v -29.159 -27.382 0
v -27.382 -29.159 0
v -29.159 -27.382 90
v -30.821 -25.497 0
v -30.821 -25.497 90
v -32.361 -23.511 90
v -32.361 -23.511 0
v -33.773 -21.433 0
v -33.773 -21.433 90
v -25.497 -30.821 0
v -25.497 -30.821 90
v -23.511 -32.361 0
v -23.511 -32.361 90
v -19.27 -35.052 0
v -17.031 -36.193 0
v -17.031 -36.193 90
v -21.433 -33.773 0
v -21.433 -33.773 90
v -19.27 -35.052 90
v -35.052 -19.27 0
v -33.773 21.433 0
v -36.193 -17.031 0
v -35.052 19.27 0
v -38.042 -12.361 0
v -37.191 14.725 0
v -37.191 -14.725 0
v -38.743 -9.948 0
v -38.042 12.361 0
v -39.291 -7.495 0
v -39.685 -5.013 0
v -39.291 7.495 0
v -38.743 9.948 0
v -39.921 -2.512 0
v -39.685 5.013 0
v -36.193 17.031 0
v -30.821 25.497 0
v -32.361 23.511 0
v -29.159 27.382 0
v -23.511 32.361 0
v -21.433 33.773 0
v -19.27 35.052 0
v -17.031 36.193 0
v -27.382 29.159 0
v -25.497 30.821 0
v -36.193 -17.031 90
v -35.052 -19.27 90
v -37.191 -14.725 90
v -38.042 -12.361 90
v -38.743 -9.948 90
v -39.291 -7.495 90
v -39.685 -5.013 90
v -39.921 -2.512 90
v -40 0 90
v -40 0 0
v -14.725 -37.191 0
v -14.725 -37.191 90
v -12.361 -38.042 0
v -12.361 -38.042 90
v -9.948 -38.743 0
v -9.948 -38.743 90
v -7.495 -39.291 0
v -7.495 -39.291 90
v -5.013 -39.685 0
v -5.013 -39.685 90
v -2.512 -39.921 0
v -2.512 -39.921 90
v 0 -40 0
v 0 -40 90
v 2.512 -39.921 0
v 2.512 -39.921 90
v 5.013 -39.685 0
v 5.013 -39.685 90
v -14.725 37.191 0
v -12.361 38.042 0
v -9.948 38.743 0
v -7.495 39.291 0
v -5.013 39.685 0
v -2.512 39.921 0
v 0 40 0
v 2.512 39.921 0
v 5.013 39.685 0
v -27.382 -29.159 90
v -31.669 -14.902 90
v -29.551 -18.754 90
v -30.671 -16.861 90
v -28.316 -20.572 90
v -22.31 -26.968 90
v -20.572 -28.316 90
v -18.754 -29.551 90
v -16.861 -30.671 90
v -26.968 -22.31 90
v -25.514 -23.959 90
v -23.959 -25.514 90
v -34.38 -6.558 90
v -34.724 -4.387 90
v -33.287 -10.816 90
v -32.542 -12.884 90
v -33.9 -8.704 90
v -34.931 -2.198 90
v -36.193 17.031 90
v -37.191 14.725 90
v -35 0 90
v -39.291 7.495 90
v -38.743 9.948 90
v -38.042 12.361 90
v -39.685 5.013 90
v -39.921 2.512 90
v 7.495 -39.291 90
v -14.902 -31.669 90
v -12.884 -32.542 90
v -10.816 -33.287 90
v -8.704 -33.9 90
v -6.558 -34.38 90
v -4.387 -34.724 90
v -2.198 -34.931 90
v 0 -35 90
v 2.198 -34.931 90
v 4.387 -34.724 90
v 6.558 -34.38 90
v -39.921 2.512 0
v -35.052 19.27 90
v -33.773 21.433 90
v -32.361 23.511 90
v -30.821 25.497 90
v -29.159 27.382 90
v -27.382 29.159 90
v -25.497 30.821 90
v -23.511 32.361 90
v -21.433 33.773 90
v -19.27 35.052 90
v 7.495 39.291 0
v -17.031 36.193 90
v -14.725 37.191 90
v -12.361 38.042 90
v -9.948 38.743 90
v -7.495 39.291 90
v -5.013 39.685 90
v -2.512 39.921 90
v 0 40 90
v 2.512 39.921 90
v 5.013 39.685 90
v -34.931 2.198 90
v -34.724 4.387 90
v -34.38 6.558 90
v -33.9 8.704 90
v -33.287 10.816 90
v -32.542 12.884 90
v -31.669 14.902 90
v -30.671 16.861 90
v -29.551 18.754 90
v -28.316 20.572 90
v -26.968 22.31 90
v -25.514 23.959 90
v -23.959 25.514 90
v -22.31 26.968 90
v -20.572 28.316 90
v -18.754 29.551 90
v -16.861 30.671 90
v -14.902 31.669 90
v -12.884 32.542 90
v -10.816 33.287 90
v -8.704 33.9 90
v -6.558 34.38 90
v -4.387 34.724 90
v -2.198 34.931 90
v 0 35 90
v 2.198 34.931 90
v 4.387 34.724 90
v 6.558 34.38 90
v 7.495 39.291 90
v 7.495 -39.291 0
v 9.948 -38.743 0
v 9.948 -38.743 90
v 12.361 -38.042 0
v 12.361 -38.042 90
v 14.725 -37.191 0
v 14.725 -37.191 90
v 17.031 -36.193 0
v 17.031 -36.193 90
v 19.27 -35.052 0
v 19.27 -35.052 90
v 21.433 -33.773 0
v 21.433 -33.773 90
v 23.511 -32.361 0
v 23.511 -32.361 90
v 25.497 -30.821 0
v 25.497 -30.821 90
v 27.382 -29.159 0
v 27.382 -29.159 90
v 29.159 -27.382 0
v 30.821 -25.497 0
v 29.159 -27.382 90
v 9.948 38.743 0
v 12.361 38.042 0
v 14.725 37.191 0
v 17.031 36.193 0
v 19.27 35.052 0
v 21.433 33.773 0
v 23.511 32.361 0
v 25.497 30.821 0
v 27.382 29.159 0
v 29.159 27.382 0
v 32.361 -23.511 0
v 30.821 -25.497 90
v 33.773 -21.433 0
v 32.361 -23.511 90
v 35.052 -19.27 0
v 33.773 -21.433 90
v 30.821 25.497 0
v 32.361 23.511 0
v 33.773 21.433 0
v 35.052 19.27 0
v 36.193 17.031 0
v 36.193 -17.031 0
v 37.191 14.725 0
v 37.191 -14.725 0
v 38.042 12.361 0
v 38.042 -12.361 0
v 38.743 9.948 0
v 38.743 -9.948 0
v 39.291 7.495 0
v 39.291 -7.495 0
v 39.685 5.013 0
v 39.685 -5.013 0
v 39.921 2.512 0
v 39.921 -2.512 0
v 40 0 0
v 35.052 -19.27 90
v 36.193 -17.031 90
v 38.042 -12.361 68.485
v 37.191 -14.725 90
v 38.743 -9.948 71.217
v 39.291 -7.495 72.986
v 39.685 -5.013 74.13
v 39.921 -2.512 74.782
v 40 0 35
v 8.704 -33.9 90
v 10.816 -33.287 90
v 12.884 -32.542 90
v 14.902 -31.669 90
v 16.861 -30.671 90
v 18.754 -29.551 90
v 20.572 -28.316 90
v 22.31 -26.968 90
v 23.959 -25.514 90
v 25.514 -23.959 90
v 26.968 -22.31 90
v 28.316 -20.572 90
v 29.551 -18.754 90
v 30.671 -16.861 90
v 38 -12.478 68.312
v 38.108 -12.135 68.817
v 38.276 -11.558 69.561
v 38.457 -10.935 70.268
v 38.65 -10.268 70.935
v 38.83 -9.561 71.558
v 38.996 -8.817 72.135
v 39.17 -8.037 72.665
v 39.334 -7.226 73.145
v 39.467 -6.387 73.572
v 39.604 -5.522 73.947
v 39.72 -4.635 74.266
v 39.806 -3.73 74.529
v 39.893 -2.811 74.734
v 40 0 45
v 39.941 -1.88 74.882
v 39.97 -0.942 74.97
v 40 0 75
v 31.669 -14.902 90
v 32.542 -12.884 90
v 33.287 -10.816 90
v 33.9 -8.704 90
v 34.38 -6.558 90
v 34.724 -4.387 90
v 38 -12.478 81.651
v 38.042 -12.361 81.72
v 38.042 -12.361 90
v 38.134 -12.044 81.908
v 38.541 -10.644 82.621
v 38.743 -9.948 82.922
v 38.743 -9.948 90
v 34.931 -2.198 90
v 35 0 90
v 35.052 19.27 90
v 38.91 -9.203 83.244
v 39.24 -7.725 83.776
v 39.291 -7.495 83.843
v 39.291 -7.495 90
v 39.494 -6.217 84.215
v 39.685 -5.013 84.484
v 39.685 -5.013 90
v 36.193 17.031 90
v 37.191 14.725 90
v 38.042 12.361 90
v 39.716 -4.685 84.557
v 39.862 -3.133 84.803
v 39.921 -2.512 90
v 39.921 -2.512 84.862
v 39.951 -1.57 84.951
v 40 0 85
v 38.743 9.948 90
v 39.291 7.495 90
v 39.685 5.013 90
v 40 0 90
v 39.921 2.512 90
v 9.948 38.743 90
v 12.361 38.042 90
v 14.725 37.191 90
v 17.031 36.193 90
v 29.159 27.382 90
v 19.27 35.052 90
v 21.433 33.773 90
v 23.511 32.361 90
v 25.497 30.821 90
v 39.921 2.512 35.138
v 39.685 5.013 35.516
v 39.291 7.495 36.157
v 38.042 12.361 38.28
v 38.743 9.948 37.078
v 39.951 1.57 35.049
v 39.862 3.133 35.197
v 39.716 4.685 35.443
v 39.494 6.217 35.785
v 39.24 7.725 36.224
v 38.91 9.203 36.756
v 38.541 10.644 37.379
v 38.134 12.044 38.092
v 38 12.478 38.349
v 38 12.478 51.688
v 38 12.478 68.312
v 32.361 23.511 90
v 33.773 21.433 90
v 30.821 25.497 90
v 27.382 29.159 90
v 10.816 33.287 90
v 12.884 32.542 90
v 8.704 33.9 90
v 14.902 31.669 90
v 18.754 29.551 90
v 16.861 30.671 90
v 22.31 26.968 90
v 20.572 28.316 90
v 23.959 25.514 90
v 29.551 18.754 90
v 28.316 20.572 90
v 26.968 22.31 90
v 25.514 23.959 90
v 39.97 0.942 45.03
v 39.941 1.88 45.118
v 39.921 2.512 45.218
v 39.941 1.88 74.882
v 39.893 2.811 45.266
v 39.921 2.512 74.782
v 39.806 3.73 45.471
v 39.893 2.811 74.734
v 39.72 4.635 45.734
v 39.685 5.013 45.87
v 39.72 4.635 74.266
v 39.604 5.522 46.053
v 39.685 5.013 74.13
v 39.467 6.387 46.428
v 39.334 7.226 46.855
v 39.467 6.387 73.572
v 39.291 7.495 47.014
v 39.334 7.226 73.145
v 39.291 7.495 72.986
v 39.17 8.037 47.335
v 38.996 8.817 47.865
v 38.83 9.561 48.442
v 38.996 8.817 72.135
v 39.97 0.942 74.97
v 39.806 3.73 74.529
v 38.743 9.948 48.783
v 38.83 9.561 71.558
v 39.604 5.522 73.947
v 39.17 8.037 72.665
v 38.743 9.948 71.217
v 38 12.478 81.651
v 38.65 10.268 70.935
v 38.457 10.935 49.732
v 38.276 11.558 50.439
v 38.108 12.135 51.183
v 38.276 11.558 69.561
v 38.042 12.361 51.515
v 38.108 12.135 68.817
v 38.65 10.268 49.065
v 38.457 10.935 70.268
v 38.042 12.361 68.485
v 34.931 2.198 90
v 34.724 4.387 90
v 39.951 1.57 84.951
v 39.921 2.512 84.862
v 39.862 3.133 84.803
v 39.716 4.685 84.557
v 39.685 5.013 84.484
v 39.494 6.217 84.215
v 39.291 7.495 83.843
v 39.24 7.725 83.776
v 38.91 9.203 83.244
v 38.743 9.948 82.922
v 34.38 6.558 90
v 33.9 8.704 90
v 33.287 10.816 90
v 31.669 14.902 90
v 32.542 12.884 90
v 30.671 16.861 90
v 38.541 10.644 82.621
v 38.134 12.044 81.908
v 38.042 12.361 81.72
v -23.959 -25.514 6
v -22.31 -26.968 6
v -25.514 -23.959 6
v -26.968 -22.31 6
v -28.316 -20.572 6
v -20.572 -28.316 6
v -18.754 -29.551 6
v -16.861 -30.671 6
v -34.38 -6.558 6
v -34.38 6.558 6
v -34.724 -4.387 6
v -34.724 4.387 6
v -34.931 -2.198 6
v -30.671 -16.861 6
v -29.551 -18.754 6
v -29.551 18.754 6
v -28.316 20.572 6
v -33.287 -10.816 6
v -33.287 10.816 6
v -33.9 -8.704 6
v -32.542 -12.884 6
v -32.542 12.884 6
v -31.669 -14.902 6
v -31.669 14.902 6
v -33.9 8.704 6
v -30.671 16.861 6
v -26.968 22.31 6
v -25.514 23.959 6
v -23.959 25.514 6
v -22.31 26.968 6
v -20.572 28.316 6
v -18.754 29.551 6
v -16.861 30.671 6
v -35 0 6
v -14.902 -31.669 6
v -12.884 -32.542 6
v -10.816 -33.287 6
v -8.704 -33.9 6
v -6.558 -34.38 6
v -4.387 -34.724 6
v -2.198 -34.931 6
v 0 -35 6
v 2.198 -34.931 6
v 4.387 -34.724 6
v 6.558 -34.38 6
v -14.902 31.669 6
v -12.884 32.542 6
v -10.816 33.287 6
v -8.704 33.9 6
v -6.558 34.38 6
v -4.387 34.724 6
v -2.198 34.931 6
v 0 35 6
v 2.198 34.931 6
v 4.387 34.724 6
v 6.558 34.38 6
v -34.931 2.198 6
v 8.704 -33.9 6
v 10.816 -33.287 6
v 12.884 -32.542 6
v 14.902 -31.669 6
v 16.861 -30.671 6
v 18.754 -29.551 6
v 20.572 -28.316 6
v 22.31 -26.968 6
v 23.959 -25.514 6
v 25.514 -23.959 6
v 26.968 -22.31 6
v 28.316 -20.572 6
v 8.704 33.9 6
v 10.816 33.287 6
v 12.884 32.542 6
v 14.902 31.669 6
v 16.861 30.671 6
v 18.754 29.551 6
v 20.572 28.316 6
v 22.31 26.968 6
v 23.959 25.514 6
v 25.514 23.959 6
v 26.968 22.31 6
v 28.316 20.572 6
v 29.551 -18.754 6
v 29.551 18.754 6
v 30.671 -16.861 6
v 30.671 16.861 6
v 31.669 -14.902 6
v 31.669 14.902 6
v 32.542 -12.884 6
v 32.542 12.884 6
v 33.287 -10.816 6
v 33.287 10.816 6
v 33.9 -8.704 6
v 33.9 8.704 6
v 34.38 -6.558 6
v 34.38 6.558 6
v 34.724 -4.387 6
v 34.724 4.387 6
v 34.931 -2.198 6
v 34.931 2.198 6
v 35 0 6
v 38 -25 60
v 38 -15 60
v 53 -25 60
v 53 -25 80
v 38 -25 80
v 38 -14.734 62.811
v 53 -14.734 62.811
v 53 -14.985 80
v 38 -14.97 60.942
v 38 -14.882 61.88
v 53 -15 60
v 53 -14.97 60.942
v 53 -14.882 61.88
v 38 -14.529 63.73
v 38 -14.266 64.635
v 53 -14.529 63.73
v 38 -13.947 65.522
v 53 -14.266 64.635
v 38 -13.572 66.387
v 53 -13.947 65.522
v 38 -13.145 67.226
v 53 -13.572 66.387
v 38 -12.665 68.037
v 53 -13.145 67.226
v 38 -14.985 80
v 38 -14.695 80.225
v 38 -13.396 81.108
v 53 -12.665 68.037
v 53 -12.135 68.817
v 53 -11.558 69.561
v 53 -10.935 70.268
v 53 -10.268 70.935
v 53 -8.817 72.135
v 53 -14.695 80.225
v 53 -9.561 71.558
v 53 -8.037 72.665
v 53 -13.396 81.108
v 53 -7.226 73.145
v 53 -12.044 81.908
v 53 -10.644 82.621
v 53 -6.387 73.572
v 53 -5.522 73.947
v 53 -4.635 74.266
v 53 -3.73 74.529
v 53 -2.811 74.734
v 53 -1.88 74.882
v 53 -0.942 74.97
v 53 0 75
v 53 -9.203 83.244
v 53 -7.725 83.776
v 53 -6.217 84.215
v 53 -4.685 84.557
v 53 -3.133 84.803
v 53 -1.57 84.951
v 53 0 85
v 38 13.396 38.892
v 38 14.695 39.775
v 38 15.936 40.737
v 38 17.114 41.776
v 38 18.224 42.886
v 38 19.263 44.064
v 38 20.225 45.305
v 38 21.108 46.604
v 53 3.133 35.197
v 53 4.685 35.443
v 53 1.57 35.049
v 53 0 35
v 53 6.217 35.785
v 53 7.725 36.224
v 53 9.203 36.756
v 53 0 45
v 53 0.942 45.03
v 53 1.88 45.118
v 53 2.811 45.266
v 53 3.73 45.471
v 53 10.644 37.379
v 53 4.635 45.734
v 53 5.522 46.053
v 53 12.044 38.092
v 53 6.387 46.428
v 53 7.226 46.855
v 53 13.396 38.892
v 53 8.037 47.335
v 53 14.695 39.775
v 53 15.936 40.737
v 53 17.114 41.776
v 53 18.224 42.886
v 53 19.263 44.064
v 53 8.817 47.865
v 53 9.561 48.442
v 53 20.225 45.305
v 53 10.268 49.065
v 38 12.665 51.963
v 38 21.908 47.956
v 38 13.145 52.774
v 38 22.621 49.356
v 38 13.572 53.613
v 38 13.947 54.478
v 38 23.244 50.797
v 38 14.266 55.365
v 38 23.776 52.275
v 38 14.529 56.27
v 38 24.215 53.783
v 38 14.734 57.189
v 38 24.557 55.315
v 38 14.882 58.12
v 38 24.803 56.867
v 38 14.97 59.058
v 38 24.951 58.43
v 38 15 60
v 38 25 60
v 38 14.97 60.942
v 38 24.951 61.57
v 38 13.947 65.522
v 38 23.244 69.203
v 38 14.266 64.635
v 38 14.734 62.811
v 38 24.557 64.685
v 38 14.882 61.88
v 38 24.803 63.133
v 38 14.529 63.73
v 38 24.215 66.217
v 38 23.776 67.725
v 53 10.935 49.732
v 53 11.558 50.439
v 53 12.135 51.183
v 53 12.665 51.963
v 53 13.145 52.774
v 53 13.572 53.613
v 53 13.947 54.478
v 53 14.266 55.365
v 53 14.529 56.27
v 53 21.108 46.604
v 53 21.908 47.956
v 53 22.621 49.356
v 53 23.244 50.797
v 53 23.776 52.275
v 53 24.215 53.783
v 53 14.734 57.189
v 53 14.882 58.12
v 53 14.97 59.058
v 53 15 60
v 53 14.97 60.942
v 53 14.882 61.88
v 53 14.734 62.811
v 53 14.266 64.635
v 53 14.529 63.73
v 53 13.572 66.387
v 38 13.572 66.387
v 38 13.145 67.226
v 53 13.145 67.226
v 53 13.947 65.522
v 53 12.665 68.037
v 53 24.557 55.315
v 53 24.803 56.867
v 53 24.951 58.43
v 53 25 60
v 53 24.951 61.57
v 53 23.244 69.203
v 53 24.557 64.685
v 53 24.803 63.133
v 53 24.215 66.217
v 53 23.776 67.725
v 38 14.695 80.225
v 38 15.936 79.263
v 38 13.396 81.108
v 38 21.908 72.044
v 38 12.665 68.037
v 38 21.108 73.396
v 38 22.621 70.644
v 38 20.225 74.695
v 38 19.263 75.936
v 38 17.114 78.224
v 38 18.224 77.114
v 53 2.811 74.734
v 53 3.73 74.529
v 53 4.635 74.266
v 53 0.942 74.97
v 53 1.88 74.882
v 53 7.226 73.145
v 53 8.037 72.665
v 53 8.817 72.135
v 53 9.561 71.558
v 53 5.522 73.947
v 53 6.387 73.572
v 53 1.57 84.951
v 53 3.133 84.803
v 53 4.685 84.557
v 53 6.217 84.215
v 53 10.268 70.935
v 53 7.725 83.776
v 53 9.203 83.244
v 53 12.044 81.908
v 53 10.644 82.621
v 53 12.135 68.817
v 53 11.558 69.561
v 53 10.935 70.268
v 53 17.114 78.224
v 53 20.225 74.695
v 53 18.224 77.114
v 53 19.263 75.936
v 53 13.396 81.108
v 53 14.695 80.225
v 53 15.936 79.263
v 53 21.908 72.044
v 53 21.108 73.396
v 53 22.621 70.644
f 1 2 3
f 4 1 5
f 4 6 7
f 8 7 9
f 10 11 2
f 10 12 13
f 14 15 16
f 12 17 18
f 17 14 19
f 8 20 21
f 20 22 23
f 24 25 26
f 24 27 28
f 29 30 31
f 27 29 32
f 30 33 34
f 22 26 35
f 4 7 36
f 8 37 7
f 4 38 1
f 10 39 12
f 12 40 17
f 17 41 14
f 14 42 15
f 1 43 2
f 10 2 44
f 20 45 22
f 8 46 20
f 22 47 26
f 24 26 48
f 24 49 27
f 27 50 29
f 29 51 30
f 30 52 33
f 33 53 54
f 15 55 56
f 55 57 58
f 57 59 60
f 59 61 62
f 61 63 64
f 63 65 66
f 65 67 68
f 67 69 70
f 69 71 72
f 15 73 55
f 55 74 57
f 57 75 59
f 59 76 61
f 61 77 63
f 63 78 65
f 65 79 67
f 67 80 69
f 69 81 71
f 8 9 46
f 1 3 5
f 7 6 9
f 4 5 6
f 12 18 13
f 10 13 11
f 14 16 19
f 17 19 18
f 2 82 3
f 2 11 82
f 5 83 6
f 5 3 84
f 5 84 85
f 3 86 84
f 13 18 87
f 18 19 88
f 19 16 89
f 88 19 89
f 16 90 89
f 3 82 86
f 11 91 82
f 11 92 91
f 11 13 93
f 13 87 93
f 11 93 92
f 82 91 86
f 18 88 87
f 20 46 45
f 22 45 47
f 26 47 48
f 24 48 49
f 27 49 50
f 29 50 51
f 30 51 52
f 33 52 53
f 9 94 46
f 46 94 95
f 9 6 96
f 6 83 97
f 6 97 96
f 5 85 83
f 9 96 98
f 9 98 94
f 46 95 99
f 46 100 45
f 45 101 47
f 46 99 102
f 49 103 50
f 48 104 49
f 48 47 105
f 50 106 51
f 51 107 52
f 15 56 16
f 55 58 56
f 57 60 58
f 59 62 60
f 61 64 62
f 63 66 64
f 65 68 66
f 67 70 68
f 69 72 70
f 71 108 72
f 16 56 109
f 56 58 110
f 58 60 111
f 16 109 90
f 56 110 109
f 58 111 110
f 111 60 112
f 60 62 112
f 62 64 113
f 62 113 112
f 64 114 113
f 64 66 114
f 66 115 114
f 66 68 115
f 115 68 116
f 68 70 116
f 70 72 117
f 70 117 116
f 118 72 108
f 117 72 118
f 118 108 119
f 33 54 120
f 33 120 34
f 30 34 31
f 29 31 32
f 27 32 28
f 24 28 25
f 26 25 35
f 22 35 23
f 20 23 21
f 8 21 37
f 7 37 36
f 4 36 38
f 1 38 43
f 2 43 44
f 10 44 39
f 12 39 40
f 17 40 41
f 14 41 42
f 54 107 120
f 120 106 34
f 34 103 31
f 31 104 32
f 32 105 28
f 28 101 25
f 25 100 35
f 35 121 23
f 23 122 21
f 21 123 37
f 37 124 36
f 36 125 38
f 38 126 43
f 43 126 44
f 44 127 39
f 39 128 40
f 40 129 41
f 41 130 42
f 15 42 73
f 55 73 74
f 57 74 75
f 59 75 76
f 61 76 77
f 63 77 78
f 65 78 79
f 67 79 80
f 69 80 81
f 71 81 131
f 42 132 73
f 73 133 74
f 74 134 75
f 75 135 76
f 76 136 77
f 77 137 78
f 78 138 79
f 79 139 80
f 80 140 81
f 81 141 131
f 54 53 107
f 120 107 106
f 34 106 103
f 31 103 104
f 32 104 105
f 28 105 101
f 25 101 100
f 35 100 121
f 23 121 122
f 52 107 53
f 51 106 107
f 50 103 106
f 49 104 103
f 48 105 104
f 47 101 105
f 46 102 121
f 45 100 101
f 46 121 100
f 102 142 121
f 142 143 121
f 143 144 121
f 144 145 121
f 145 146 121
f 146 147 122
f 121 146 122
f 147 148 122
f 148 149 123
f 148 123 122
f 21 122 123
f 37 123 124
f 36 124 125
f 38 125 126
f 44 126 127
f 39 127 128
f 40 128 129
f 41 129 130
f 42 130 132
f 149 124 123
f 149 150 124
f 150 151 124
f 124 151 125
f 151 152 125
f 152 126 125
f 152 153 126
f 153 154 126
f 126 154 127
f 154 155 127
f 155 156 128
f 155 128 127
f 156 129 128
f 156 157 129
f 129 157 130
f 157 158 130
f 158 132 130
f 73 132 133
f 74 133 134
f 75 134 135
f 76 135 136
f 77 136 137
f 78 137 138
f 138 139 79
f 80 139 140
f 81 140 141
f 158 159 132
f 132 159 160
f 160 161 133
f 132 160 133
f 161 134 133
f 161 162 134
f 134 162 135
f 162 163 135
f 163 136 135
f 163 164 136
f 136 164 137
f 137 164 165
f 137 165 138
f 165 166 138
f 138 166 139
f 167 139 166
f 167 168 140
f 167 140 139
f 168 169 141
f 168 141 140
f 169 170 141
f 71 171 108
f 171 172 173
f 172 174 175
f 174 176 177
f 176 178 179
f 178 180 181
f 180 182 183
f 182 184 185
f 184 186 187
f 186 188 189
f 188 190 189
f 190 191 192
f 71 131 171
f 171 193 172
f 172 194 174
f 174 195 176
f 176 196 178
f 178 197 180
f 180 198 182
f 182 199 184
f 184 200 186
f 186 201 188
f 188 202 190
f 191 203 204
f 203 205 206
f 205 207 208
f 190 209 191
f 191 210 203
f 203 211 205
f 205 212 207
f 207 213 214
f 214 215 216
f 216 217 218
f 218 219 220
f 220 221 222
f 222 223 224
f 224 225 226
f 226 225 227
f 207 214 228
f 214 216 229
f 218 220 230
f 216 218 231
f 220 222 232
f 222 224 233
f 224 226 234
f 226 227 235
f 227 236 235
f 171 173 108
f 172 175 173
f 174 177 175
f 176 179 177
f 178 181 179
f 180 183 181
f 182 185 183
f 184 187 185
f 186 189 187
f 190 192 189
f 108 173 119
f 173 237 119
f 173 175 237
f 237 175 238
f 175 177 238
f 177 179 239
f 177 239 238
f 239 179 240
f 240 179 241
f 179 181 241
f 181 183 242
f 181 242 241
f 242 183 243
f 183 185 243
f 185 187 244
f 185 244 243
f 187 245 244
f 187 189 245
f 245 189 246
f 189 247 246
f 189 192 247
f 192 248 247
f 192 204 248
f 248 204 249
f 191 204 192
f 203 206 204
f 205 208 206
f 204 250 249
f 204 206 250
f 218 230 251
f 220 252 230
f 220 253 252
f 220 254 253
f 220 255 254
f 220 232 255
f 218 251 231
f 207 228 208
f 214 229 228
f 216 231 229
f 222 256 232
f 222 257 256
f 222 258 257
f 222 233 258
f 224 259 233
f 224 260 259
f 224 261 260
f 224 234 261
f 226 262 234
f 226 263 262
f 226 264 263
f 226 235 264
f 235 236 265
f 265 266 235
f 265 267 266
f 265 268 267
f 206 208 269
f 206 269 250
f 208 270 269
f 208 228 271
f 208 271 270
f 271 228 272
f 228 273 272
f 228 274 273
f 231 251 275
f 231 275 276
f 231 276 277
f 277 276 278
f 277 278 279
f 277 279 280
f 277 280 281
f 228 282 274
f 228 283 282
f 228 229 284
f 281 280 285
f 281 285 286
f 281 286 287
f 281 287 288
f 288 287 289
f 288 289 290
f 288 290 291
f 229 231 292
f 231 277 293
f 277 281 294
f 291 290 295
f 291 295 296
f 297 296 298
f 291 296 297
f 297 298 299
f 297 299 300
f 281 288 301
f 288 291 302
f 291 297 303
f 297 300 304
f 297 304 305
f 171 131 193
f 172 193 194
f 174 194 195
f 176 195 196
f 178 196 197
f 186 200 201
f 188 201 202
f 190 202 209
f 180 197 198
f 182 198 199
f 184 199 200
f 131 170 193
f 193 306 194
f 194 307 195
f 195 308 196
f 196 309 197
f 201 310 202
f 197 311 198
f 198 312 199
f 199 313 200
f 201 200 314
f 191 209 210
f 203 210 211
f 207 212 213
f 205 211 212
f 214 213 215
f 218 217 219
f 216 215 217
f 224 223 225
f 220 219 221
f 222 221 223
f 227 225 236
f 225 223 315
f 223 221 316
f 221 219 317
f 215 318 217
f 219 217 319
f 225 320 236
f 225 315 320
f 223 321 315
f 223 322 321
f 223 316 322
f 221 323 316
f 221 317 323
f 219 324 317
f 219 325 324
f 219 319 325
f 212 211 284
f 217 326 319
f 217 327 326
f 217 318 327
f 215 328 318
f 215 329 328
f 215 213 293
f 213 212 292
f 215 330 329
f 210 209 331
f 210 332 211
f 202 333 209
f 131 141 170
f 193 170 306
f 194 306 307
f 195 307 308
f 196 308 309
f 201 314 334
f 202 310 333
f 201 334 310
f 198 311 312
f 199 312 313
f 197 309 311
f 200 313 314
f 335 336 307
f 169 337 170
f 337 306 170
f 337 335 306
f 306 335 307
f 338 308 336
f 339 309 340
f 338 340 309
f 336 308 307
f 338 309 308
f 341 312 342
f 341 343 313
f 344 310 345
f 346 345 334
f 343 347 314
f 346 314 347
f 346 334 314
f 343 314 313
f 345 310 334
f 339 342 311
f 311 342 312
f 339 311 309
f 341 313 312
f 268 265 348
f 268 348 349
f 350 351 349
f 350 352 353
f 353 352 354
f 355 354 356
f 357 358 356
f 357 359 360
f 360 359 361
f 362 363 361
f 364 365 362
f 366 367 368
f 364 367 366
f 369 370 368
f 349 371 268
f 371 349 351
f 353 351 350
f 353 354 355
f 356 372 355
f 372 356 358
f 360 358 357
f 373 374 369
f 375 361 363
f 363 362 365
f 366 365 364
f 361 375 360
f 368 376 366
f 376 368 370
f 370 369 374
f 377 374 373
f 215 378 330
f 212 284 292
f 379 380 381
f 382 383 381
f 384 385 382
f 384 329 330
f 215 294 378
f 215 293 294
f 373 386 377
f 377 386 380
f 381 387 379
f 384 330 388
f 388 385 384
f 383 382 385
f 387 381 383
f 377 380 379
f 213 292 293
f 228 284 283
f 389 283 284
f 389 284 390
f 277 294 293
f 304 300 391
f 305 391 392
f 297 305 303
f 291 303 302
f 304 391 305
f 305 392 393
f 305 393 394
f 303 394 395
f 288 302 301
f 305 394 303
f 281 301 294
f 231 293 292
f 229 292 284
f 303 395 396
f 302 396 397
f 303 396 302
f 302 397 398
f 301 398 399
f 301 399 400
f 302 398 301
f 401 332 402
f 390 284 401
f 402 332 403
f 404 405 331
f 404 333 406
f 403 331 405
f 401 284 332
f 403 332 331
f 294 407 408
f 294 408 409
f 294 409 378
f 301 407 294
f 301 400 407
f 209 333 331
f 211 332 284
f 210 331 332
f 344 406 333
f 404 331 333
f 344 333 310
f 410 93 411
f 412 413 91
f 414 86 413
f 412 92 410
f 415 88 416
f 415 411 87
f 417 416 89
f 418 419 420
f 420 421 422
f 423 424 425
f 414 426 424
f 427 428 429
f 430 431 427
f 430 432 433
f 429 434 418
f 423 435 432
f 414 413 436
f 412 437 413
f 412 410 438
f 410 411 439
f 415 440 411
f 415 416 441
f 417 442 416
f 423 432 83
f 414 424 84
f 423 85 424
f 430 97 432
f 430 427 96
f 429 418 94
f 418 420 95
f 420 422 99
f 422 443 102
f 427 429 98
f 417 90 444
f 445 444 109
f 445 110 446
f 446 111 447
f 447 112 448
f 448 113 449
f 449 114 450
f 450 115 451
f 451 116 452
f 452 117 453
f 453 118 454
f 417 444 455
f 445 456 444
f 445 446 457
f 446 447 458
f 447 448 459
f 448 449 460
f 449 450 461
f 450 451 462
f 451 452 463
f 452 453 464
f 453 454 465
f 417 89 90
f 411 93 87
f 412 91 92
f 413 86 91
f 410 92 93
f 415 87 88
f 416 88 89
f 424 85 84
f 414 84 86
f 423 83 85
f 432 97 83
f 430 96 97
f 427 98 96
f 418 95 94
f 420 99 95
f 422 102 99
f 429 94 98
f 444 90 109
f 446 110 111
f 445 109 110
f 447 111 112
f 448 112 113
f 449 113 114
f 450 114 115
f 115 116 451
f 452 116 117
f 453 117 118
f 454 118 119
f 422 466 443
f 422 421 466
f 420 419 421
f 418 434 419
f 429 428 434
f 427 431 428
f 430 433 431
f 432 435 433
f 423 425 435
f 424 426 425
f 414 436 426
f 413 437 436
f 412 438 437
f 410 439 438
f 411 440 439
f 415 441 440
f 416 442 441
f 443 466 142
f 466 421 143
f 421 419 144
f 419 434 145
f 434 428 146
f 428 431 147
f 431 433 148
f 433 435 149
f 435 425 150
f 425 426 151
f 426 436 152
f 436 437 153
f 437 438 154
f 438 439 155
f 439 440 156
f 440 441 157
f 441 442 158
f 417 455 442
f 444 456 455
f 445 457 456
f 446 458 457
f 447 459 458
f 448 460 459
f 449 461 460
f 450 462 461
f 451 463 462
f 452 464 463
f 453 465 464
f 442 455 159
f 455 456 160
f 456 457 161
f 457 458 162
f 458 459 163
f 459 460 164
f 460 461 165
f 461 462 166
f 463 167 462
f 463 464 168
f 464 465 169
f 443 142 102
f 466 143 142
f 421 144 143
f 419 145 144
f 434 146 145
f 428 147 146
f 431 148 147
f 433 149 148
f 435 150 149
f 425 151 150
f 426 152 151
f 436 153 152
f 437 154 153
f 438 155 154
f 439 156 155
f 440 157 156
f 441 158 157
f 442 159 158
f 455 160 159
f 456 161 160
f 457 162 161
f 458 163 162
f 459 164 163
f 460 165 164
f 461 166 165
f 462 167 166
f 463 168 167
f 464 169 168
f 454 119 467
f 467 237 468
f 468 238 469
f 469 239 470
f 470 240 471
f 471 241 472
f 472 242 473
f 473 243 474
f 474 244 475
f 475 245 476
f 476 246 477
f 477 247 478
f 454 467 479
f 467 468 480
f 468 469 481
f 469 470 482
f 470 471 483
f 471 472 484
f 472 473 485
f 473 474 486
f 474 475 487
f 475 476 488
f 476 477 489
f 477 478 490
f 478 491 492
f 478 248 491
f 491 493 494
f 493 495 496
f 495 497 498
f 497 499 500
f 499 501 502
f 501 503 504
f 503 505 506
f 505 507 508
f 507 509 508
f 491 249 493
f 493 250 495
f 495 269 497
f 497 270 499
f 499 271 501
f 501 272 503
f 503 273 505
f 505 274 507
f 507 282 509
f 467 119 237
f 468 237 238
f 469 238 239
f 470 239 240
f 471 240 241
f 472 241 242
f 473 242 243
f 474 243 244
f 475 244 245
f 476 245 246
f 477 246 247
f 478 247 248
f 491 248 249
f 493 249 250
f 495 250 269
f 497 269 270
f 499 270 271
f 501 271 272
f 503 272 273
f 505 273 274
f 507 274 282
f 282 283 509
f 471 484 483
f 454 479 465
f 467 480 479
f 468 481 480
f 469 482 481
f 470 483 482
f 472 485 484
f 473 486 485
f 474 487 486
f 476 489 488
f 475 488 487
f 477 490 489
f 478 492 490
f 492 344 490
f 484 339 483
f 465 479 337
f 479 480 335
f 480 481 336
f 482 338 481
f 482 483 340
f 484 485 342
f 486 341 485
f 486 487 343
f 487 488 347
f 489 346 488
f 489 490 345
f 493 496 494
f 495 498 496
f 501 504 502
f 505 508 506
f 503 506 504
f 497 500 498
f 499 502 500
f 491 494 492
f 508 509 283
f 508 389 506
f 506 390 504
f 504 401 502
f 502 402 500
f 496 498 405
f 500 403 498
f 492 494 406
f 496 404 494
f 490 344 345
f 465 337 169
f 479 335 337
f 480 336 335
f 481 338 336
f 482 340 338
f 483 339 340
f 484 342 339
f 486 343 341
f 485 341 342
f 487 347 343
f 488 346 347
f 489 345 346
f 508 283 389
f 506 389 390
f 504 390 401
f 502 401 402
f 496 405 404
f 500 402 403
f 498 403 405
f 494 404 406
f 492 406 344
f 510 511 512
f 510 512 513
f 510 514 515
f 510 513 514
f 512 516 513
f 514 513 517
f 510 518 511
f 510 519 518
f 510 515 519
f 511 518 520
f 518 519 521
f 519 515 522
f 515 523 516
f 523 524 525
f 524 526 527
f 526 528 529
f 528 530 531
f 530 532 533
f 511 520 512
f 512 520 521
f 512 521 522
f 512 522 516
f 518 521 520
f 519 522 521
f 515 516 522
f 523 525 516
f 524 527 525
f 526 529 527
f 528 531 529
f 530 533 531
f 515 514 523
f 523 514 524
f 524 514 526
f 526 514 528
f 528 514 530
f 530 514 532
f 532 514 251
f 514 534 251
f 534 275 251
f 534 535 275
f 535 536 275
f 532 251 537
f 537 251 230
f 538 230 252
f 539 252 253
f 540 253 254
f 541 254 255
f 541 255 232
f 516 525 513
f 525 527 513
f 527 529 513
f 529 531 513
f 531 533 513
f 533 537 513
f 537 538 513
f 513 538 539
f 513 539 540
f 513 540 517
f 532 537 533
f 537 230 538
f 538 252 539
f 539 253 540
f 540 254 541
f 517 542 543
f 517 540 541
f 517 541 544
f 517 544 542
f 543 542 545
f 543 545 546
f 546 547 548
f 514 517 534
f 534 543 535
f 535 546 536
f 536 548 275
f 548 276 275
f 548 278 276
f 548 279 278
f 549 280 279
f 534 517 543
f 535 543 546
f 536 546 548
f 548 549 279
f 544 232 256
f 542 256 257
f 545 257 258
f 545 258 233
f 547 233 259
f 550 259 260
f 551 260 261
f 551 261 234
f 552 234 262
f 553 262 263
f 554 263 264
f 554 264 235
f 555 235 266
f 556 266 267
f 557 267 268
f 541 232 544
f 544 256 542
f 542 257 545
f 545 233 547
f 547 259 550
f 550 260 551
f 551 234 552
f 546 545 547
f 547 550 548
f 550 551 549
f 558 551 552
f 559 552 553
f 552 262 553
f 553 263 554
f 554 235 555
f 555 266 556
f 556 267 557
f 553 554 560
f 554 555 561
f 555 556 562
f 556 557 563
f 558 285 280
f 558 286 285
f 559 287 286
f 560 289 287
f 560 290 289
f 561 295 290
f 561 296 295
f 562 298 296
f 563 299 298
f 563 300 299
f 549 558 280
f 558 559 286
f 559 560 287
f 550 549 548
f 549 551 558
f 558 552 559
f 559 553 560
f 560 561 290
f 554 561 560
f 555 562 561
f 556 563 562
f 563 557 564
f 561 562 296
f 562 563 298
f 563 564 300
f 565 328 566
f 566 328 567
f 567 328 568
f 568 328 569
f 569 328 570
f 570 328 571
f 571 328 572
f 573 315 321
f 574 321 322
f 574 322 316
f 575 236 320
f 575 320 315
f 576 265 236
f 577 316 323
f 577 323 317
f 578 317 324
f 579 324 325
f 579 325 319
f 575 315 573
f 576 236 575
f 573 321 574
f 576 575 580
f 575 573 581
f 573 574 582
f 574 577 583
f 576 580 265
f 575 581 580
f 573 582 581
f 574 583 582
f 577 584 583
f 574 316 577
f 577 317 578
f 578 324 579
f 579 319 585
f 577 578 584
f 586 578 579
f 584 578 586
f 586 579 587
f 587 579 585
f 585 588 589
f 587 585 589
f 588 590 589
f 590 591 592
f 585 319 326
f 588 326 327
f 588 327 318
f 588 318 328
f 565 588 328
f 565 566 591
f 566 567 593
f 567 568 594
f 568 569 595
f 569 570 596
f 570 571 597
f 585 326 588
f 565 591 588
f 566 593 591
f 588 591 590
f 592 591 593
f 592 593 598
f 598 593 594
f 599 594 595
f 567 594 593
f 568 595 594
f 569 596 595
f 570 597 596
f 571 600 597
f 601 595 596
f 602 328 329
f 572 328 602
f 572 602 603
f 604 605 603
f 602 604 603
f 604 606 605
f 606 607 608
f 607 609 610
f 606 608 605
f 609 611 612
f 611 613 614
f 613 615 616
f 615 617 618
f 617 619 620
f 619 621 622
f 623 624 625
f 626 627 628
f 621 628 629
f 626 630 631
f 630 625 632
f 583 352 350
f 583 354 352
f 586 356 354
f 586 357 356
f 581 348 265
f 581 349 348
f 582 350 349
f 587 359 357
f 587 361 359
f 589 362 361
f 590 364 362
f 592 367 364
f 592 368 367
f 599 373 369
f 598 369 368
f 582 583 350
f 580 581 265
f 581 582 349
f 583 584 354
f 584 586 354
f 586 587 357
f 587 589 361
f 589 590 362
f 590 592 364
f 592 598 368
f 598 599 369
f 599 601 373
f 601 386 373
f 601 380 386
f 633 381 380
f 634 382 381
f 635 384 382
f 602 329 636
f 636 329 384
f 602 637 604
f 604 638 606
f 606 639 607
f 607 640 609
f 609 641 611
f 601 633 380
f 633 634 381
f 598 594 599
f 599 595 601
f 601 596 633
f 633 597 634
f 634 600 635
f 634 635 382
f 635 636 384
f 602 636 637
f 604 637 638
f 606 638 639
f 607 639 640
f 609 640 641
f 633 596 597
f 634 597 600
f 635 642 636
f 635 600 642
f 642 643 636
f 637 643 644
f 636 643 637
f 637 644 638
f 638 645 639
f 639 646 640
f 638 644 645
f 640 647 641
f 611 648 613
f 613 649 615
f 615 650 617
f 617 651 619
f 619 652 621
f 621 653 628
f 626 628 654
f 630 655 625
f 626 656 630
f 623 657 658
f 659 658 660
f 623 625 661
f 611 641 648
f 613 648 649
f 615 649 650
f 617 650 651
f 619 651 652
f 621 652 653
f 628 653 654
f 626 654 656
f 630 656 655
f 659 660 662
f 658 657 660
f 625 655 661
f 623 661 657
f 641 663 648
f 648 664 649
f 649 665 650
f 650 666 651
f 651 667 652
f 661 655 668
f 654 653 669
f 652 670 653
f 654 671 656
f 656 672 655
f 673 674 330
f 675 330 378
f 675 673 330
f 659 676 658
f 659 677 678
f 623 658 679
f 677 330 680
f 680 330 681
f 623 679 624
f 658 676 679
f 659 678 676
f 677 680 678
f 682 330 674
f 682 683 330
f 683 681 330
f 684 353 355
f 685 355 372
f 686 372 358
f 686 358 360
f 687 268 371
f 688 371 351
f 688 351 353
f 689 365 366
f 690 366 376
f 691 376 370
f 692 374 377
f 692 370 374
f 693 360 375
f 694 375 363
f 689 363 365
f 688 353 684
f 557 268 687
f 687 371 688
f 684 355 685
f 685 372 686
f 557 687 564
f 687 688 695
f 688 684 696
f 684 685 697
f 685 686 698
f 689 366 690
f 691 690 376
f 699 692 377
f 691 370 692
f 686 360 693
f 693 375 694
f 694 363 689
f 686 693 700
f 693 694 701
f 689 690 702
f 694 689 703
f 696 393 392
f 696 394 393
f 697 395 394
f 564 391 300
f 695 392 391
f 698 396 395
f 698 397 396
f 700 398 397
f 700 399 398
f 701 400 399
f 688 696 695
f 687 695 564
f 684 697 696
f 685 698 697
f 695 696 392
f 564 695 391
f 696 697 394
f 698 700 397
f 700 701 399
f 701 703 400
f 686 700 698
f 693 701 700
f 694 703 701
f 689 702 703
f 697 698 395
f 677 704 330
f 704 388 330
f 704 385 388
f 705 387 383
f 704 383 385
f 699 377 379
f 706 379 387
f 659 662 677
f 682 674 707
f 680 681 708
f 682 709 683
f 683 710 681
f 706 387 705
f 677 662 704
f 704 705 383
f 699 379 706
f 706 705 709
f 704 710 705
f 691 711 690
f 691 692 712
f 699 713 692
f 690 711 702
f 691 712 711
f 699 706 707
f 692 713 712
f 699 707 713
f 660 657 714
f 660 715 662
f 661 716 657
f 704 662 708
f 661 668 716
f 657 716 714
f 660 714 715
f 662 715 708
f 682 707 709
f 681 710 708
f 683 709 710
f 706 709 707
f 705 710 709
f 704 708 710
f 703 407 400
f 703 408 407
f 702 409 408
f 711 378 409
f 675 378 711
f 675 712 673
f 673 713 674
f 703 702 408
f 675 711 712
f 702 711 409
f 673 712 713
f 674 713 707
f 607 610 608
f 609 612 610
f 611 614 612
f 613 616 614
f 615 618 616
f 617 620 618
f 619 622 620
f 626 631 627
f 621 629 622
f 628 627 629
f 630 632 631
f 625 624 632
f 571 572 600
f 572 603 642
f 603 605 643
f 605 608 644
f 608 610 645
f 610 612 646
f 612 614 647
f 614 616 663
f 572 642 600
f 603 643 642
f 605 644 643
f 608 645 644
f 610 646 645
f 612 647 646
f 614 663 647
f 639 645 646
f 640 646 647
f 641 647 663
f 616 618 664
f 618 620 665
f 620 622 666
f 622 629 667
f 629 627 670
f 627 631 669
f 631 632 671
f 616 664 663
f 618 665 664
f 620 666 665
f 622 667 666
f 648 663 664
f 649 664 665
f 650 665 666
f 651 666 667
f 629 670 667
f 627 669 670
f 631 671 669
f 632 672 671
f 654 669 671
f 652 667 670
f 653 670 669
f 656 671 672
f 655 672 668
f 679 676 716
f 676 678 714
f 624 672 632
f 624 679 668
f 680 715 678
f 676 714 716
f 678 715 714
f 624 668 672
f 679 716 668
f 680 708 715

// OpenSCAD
$fn = 100;

// マグ本体のパラメータ
outer_d = 80;
inner_d = 70;
height = 90;
bottom_thick = 6;

// 取手のパラメータ
handle_h_space = 30; // 取手の空間の高さ
handle_w_space = 25; // 取手の空間の幅
handle_thick = 10;   // 取手の肉厚
handle_depth = 15;   // 取手の奥行き（本体からの突き出し方向）

module mug_body() {
    difference() {
        cylinder(d = outer_d, h = height);
        translate([0, 0, bottom_thick])
            cylinder(d = inner_d, h = height - bottom_thick + 0.1);
    }
}

module handle() {
    // マグの側面に接する平らな部分を作るため、D字型を構築
    // 本体側は円弧に沿うように少し食い込ませる
    translate([outer_d / 2 - 2, 0, height / 2]) {
        rotate([90, 0, 90]) {
            linear_extrude(height = handle_depth) {
                difference() {
                    // 取手の外形
                    union() {
                        translate([0, handle_h_space / 2]) circle(d = handle_h_space + handle_thick * 2);
                        translate([-(handle_h_space / 2 + handle_thick), -handle_h_space / 2]) 
                            square([handle_h_space / 2 + handle_thick, handle_h_space + handle_thick * 2]);
                    }
                    // 取手の内側の空洞（指を通す部分）
                    union() {
                        translate([0, handle_h_space / 2]) circle(d = handle_h_space);
                        translate([-handle_w_space, -handle_h_space / 2]) 
                            square([handle_w_space, handle_h_space]);
                    }
                }
            }
        }
    }
}

// 本体と取手を結合
union() {
    mug_body();
    handle();
}
